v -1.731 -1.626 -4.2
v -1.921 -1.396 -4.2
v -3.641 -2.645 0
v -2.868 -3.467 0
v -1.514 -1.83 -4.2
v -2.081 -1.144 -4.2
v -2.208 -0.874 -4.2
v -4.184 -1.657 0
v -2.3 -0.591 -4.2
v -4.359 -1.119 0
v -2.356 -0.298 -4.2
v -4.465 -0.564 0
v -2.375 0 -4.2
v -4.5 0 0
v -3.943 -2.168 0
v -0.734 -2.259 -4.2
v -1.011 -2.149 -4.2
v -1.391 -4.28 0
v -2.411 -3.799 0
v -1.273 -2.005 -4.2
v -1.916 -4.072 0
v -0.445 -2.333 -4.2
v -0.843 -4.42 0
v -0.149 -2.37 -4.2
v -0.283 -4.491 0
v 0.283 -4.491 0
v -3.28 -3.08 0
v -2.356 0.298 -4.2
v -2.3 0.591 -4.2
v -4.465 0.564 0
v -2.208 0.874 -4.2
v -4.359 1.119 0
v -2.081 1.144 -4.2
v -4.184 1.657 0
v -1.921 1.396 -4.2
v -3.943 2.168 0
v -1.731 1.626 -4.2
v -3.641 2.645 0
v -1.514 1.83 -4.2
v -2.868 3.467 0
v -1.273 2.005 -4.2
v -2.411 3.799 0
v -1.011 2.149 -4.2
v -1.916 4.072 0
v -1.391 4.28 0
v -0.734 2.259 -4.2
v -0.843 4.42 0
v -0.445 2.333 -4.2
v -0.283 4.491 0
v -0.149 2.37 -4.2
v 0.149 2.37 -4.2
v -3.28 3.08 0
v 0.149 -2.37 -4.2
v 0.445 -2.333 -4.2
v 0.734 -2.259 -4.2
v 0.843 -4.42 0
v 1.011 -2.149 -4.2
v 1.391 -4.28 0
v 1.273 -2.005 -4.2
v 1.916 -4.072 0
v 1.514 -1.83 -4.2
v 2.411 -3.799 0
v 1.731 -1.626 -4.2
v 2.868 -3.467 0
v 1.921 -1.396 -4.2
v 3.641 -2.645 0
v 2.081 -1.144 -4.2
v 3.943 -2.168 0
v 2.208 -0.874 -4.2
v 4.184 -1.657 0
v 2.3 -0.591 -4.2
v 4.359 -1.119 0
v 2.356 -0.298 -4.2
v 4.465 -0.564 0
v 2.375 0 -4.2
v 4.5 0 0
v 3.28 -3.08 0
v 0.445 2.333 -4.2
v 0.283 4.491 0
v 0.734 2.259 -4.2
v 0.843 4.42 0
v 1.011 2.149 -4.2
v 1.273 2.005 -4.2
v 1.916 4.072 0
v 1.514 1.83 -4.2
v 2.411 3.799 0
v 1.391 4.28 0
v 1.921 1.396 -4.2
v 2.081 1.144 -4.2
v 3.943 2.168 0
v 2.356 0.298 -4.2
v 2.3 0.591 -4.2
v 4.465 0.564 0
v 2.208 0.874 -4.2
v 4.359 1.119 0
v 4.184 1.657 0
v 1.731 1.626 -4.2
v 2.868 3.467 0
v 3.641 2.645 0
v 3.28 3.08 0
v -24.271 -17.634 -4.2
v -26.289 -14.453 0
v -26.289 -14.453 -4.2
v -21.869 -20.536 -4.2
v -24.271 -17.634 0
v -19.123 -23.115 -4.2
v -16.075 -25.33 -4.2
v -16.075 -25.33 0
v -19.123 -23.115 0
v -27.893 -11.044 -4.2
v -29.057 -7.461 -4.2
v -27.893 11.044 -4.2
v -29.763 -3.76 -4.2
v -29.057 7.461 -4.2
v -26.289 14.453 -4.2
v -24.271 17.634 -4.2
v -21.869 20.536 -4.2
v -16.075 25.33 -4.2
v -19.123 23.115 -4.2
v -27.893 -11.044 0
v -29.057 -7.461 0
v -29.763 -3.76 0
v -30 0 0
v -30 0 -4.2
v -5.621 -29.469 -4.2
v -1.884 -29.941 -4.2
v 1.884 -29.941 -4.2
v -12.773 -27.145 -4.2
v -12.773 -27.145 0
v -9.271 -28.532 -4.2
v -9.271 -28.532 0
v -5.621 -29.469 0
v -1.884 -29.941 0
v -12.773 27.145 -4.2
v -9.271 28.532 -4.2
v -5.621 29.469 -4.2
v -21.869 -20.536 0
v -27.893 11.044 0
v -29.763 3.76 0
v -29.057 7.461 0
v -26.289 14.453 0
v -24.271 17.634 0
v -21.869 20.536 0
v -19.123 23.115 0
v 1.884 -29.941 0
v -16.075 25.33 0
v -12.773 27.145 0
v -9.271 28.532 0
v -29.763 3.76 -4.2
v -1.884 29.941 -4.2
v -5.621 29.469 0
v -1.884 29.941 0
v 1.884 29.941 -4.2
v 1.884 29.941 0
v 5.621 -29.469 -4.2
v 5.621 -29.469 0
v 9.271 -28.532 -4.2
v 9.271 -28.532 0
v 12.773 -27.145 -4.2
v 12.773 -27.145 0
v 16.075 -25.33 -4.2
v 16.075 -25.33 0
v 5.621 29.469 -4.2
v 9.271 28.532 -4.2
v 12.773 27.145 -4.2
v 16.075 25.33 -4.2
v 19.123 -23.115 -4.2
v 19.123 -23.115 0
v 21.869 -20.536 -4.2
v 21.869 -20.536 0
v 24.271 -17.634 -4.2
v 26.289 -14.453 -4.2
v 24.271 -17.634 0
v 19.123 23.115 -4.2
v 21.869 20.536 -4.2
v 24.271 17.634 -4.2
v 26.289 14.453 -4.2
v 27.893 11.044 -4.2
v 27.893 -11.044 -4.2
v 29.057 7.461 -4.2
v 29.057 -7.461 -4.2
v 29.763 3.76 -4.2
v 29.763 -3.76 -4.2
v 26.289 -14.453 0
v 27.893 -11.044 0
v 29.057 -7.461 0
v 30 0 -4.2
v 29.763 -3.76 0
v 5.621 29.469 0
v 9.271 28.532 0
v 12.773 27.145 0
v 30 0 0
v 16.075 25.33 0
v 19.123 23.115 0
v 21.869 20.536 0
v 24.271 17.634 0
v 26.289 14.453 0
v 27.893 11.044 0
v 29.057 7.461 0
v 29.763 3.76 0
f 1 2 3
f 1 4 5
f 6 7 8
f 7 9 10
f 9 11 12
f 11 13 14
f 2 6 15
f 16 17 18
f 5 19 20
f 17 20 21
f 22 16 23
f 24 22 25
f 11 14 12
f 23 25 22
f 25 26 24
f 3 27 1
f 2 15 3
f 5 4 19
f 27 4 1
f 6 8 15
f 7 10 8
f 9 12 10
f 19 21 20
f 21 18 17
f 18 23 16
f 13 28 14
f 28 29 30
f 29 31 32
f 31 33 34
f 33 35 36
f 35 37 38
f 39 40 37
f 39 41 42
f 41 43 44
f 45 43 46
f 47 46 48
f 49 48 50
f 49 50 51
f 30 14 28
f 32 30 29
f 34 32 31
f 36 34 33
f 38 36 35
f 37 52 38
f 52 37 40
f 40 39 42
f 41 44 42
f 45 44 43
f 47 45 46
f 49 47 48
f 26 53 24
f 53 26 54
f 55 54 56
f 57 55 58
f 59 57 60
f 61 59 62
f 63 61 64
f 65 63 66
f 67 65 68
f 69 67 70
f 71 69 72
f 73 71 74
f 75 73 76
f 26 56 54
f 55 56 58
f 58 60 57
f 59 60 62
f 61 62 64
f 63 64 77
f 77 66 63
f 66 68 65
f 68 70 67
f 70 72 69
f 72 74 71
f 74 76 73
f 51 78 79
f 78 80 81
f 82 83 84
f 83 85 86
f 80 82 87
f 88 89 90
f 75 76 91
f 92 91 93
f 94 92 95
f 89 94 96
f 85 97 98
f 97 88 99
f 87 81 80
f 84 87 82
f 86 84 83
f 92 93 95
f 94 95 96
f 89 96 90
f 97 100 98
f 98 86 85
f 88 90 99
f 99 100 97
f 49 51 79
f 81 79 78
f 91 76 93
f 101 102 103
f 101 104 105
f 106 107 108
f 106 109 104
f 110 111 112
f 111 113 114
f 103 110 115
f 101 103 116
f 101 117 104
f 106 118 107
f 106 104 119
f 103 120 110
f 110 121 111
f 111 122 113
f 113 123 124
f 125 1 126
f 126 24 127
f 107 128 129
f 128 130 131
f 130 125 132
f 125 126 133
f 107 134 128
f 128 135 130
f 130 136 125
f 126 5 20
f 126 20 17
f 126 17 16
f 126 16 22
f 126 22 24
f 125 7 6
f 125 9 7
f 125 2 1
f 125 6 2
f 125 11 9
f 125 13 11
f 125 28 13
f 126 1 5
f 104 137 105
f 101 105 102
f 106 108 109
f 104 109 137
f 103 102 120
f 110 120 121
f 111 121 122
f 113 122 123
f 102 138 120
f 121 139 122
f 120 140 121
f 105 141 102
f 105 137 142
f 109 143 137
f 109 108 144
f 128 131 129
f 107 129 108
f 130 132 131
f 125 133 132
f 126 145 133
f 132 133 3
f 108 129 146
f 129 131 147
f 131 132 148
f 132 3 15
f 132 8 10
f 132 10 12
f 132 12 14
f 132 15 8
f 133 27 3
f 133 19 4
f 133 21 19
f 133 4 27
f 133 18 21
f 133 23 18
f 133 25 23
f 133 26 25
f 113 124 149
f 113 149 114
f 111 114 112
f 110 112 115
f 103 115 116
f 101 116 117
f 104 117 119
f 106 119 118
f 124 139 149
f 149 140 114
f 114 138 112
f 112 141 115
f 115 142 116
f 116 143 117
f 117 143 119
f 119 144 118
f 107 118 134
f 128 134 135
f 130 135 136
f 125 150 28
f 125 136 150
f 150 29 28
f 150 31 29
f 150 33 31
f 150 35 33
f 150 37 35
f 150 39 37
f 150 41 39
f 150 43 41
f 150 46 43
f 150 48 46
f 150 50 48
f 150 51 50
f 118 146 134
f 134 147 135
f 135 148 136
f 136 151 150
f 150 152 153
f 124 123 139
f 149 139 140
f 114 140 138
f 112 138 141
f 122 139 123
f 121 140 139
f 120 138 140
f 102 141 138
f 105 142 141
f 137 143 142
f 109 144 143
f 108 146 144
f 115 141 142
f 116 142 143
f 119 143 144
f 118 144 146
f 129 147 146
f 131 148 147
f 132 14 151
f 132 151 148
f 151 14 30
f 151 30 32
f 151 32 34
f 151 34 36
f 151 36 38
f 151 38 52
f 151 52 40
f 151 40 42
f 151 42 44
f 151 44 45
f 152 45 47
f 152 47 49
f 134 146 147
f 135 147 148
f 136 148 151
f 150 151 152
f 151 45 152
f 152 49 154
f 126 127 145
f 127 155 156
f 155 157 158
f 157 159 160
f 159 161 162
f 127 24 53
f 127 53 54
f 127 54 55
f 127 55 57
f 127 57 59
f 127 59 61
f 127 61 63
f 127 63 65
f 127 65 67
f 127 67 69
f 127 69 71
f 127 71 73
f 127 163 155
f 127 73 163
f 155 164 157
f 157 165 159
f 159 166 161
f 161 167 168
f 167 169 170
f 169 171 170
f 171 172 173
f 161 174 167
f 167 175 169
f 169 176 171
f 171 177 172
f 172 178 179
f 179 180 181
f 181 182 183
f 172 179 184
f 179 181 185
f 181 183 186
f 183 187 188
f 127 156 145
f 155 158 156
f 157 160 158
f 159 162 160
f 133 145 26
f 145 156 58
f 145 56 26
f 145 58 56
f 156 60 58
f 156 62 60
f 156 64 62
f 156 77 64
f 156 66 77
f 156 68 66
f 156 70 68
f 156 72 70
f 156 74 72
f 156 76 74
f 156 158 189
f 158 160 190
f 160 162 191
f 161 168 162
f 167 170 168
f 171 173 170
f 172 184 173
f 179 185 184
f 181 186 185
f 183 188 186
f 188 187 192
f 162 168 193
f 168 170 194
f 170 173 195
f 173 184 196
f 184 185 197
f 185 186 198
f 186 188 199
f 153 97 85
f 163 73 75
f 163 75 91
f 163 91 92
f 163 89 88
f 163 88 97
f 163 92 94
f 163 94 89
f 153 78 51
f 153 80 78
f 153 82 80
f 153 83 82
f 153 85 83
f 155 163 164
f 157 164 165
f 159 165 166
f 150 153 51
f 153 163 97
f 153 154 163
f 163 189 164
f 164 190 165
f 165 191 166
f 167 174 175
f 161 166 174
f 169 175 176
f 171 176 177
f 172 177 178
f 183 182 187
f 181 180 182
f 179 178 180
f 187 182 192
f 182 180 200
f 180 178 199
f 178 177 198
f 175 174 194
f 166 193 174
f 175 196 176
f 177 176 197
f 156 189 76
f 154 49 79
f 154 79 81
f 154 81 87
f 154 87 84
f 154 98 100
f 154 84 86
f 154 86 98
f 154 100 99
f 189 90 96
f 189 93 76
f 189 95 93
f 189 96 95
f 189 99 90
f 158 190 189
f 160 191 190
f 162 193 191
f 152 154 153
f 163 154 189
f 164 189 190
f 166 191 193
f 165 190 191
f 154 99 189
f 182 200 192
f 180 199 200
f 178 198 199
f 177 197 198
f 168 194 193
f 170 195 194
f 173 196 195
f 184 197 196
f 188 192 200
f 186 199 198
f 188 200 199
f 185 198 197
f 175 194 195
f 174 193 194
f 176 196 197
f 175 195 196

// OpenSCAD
$fn = 50;

difference() {
	union() {
		translate(v = [0, 0, -4.2]) {
			cylinder(h = 4.2, r = 30.0);
		}
	}
	union() {
		translate(v = [0, 0, 0]) {
			rotate(a = [0, 0, 0]) {
				difference() {
					union() {
						translate(v = [0, 0, -7.2]) {
							cylinder(h = 7.2, r = 2.25);
						}
						translate(v = [0, 0, -4.2]) {
							cylinder(h = 4.2, r1 = 2.375, r2 = 4.5);
						}
						translate(v = [0, 0, -7.2]) {
							cylinder(h = 7.2, r = 2.375);
						}
						translate(v = [0, 0, -7.2]) {
							cylinder(h = 7.2, r = 2.25);
						}
					}
					union();
				}
			}
		}
	}
}
